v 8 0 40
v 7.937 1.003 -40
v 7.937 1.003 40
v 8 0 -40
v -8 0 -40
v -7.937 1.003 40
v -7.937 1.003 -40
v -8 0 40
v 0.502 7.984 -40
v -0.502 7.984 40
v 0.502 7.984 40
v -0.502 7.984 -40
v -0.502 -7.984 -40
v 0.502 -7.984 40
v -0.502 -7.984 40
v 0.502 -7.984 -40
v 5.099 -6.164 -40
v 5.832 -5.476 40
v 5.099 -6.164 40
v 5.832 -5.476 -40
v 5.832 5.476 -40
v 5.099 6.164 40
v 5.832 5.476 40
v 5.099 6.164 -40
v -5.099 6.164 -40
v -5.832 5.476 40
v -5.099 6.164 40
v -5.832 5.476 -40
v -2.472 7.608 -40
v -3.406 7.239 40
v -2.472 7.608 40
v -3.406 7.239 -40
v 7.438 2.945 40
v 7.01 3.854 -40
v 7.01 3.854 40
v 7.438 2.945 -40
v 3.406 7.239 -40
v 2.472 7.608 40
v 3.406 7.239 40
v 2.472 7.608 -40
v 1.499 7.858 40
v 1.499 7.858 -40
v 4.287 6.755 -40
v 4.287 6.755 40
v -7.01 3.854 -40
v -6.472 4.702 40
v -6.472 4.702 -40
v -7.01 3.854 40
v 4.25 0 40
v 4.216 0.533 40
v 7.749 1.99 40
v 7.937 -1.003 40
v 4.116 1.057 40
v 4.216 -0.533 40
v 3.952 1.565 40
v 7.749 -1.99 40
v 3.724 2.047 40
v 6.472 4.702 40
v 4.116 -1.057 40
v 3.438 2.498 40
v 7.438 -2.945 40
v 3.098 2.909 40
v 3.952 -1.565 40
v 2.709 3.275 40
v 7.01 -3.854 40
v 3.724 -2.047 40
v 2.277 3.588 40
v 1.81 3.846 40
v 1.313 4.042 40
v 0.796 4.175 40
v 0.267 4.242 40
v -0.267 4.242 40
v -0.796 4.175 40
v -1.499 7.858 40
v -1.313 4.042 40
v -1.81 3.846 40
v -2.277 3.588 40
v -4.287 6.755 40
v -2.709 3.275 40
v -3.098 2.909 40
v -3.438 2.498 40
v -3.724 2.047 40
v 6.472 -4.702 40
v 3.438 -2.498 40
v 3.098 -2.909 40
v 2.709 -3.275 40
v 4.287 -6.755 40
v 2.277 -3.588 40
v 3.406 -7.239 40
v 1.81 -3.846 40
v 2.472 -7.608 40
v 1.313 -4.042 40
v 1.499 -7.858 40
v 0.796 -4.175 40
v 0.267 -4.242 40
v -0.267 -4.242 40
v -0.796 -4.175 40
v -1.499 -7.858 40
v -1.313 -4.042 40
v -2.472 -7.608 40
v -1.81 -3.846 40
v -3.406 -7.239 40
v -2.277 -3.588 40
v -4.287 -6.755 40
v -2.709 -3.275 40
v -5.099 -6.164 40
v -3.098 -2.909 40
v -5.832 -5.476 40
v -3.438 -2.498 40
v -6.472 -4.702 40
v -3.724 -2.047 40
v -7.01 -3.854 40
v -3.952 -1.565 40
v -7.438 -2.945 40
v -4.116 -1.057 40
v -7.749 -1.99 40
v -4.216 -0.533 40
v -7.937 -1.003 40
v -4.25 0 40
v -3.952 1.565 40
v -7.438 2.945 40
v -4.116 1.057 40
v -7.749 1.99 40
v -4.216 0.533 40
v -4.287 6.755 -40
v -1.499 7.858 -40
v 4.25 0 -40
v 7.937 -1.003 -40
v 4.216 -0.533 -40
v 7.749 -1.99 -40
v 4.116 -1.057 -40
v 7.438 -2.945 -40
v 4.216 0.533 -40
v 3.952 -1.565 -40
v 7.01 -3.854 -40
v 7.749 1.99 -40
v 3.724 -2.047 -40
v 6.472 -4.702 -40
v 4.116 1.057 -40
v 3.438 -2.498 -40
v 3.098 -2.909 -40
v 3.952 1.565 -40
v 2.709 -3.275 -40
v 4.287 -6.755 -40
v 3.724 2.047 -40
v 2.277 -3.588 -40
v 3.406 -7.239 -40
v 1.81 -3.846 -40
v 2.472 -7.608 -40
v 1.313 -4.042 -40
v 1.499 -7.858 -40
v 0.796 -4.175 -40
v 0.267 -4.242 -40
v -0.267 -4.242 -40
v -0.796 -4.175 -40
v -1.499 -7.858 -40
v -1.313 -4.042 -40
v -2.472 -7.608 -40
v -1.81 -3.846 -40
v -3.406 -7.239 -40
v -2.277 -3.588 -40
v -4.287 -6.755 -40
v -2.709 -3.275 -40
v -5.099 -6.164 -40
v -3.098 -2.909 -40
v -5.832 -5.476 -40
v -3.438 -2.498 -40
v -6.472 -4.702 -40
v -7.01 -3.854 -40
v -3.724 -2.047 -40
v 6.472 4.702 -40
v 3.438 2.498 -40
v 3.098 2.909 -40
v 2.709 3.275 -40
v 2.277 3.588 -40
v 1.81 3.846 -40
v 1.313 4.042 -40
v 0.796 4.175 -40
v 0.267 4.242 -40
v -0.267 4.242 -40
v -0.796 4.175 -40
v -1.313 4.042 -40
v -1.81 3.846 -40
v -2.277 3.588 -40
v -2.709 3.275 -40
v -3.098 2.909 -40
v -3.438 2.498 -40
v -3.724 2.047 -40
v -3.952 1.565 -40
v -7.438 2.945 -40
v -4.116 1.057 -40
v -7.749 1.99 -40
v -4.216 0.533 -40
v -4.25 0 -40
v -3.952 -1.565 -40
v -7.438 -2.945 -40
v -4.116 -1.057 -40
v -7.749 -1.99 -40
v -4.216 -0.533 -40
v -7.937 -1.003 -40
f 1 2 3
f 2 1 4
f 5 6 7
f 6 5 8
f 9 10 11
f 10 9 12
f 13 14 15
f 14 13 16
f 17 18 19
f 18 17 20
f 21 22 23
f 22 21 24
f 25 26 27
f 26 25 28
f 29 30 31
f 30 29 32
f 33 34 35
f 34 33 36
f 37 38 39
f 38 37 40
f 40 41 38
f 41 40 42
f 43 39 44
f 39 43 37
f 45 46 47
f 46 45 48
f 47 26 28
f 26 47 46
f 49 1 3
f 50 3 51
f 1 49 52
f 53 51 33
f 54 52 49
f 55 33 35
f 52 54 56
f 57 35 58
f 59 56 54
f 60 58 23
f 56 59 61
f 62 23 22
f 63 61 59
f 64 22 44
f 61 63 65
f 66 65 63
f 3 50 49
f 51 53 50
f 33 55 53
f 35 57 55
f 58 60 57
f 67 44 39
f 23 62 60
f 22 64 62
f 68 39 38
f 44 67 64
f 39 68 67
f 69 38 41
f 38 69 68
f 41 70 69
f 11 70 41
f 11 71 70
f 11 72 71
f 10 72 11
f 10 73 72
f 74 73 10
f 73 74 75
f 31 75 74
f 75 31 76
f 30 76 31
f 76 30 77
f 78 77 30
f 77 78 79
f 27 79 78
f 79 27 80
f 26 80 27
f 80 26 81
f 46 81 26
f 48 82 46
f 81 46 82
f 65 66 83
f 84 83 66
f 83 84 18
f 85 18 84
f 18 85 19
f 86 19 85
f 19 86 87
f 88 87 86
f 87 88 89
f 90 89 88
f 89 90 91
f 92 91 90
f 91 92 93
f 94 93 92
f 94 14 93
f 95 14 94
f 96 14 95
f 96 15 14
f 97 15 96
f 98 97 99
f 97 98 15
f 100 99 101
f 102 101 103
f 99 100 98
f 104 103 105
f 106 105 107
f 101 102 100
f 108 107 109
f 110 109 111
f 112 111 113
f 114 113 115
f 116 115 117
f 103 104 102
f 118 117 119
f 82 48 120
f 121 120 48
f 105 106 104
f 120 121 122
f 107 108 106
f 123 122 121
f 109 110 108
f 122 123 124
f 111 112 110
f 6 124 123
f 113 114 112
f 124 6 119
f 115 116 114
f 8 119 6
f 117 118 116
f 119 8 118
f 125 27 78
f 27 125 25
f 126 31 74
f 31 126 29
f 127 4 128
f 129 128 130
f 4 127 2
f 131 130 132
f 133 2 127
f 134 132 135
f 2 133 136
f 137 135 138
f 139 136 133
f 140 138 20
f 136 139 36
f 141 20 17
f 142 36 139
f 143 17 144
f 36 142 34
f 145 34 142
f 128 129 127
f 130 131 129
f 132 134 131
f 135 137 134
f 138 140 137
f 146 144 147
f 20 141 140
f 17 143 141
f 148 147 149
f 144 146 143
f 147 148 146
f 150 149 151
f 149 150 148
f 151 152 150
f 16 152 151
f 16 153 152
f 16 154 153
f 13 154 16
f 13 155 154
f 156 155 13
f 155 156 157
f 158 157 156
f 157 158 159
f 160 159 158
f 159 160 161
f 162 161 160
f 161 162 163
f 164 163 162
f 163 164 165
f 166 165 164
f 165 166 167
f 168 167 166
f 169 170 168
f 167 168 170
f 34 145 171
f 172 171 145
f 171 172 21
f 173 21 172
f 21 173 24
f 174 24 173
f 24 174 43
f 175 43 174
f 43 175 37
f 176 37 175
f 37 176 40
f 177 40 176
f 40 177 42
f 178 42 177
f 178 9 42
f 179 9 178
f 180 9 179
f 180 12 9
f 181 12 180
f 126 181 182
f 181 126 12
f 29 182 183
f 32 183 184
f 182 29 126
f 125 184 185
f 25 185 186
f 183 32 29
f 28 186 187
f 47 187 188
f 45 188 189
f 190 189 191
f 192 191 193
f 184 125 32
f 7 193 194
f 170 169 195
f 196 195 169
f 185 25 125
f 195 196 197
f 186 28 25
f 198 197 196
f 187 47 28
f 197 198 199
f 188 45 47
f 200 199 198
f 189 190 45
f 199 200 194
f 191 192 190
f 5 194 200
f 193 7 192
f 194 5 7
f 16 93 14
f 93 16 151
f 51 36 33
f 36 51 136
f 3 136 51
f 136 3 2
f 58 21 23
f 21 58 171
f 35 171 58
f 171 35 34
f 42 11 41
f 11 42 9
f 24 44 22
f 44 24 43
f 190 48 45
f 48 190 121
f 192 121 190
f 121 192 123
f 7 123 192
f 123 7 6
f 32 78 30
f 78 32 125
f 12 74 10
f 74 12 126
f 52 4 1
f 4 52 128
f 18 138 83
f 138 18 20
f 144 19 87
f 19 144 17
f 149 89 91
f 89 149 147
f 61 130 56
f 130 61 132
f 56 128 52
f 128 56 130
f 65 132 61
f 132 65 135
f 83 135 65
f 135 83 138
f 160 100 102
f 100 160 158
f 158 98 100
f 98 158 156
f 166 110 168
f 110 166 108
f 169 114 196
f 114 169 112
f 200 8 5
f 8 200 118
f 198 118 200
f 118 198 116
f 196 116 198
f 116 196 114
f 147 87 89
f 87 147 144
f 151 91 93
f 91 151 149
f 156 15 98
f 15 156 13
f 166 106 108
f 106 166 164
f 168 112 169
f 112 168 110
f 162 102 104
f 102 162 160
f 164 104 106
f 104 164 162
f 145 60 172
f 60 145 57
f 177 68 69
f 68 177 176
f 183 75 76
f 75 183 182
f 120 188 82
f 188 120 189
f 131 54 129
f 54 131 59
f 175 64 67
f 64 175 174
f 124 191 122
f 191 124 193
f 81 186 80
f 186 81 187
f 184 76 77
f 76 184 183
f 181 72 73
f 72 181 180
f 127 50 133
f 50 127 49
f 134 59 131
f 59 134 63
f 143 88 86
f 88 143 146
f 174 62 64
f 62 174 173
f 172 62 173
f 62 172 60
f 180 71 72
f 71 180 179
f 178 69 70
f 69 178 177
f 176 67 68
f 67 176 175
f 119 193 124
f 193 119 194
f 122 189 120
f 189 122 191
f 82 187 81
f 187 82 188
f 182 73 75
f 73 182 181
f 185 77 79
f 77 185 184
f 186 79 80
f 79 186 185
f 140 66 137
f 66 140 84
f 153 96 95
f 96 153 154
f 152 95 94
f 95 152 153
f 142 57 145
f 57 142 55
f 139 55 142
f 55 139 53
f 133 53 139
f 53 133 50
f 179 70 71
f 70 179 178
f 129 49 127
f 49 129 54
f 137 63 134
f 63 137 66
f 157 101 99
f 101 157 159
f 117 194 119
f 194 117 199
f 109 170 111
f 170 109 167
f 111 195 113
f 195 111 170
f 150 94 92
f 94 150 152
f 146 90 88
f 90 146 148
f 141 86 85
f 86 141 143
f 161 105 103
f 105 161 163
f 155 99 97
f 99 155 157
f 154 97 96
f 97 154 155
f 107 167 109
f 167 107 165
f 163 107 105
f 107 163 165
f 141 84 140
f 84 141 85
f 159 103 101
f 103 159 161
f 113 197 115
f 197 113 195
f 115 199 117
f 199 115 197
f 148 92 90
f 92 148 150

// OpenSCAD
$fn = 50;


difference() {
	union() {
		translate(v = [0, 0, -40.0000000000]) {
			cylinder(h = 80, r = 8.0000000000);
		}
	}
	union() {
		translate(v = [0, 0, -100.0000000000]) {
			cylinder(h = 200, r = 4.2500000000);
		}
	}
}
